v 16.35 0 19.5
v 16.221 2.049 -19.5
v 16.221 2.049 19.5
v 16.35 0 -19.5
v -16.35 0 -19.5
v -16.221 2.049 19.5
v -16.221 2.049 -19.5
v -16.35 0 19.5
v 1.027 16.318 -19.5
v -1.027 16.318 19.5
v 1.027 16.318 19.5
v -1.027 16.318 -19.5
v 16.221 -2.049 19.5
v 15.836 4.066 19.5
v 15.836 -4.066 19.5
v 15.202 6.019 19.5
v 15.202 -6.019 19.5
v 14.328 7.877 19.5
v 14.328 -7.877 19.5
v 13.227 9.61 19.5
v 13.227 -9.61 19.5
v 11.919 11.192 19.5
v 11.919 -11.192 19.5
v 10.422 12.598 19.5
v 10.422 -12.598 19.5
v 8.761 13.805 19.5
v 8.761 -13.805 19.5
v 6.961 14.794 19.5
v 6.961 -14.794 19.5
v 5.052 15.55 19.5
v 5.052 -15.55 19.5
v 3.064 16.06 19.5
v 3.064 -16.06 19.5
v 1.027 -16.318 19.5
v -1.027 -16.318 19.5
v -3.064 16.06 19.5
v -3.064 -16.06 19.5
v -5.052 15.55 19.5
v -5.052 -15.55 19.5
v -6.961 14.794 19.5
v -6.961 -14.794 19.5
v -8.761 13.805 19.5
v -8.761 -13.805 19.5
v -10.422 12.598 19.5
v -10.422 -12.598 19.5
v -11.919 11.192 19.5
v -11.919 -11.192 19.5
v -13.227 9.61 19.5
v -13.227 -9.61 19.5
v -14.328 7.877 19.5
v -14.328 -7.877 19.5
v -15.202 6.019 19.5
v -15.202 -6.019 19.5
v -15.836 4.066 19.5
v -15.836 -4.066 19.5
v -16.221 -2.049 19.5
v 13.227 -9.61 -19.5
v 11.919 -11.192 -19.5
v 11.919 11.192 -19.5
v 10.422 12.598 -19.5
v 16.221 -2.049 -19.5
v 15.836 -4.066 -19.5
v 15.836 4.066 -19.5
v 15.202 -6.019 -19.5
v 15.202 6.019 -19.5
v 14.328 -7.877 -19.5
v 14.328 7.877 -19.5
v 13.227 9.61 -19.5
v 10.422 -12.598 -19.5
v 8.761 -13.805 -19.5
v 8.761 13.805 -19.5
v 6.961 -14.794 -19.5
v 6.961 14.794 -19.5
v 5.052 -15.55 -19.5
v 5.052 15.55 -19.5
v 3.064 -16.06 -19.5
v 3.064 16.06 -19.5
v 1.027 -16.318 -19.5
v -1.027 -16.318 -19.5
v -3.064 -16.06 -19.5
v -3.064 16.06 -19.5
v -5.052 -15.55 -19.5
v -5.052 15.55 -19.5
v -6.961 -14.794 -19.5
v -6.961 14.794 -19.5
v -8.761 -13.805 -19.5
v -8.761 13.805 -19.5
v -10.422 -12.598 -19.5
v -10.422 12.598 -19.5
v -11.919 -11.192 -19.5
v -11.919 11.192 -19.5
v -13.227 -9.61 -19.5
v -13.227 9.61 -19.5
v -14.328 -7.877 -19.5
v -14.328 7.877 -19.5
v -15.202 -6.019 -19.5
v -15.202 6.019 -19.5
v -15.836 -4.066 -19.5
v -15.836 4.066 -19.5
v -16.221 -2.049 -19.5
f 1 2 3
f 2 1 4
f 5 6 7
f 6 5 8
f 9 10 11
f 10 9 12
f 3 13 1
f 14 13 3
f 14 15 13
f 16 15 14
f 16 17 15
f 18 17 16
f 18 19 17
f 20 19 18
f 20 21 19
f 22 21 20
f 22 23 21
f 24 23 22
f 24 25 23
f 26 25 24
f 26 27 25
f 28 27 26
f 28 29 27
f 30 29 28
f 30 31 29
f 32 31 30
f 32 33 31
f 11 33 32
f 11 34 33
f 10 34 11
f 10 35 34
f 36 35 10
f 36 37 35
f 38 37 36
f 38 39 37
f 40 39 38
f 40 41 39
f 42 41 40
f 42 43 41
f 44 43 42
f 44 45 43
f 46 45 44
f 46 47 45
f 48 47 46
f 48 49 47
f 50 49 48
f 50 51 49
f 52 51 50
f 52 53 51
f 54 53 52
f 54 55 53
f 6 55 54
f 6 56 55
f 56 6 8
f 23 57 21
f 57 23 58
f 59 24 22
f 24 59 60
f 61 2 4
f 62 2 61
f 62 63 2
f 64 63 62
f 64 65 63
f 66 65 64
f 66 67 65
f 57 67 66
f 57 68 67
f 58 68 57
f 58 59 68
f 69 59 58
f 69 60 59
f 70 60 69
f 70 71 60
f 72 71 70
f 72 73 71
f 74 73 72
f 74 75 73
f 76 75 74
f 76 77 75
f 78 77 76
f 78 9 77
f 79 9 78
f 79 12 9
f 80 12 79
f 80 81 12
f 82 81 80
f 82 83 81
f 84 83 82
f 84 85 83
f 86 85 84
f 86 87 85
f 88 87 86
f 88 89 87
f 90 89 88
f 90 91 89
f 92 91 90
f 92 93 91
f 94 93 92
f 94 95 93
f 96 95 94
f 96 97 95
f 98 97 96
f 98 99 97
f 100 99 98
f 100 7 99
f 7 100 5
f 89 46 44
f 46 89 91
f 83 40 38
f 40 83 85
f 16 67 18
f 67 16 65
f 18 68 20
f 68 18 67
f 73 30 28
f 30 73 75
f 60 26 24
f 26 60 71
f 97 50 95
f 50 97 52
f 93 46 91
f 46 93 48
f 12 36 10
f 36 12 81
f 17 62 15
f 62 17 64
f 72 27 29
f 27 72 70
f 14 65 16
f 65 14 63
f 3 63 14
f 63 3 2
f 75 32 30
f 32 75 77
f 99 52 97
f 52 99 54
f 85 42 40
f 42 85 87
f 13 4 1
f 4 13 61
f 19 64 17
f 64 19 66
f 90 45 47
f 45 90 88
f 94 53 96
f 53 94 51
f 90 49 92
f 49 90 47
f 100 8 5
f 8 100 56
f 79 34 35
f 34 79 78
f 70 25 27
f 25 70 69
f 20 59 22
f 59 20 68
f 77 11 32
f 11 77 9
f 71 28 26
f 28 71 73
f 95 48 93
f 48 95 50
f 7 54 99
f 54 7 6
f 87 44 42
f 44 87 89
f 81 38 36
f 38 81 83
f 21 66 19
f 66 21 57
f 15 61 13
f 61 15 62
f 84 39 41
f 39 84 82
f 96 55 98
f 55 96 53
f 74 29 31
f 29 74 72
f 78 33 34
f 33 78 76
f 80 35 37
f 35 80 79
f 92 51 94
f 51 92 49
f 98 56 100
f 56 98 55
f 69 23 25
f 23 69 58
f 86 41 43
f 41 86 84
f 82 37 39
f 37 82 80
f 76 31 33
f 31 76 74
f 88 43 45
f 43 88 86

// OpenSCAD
$fn = 50;


difference() {
	union() {
		translate(v = [0, 0, -19.5000000000]) {
			cylinder(h = 39, r = 16.3500000000);
		}
	}
	union() {
		translate(v = [0, 0, -100.0000000000]) {
			cylinder(h = 200, r = 0);
		}
	}
}
